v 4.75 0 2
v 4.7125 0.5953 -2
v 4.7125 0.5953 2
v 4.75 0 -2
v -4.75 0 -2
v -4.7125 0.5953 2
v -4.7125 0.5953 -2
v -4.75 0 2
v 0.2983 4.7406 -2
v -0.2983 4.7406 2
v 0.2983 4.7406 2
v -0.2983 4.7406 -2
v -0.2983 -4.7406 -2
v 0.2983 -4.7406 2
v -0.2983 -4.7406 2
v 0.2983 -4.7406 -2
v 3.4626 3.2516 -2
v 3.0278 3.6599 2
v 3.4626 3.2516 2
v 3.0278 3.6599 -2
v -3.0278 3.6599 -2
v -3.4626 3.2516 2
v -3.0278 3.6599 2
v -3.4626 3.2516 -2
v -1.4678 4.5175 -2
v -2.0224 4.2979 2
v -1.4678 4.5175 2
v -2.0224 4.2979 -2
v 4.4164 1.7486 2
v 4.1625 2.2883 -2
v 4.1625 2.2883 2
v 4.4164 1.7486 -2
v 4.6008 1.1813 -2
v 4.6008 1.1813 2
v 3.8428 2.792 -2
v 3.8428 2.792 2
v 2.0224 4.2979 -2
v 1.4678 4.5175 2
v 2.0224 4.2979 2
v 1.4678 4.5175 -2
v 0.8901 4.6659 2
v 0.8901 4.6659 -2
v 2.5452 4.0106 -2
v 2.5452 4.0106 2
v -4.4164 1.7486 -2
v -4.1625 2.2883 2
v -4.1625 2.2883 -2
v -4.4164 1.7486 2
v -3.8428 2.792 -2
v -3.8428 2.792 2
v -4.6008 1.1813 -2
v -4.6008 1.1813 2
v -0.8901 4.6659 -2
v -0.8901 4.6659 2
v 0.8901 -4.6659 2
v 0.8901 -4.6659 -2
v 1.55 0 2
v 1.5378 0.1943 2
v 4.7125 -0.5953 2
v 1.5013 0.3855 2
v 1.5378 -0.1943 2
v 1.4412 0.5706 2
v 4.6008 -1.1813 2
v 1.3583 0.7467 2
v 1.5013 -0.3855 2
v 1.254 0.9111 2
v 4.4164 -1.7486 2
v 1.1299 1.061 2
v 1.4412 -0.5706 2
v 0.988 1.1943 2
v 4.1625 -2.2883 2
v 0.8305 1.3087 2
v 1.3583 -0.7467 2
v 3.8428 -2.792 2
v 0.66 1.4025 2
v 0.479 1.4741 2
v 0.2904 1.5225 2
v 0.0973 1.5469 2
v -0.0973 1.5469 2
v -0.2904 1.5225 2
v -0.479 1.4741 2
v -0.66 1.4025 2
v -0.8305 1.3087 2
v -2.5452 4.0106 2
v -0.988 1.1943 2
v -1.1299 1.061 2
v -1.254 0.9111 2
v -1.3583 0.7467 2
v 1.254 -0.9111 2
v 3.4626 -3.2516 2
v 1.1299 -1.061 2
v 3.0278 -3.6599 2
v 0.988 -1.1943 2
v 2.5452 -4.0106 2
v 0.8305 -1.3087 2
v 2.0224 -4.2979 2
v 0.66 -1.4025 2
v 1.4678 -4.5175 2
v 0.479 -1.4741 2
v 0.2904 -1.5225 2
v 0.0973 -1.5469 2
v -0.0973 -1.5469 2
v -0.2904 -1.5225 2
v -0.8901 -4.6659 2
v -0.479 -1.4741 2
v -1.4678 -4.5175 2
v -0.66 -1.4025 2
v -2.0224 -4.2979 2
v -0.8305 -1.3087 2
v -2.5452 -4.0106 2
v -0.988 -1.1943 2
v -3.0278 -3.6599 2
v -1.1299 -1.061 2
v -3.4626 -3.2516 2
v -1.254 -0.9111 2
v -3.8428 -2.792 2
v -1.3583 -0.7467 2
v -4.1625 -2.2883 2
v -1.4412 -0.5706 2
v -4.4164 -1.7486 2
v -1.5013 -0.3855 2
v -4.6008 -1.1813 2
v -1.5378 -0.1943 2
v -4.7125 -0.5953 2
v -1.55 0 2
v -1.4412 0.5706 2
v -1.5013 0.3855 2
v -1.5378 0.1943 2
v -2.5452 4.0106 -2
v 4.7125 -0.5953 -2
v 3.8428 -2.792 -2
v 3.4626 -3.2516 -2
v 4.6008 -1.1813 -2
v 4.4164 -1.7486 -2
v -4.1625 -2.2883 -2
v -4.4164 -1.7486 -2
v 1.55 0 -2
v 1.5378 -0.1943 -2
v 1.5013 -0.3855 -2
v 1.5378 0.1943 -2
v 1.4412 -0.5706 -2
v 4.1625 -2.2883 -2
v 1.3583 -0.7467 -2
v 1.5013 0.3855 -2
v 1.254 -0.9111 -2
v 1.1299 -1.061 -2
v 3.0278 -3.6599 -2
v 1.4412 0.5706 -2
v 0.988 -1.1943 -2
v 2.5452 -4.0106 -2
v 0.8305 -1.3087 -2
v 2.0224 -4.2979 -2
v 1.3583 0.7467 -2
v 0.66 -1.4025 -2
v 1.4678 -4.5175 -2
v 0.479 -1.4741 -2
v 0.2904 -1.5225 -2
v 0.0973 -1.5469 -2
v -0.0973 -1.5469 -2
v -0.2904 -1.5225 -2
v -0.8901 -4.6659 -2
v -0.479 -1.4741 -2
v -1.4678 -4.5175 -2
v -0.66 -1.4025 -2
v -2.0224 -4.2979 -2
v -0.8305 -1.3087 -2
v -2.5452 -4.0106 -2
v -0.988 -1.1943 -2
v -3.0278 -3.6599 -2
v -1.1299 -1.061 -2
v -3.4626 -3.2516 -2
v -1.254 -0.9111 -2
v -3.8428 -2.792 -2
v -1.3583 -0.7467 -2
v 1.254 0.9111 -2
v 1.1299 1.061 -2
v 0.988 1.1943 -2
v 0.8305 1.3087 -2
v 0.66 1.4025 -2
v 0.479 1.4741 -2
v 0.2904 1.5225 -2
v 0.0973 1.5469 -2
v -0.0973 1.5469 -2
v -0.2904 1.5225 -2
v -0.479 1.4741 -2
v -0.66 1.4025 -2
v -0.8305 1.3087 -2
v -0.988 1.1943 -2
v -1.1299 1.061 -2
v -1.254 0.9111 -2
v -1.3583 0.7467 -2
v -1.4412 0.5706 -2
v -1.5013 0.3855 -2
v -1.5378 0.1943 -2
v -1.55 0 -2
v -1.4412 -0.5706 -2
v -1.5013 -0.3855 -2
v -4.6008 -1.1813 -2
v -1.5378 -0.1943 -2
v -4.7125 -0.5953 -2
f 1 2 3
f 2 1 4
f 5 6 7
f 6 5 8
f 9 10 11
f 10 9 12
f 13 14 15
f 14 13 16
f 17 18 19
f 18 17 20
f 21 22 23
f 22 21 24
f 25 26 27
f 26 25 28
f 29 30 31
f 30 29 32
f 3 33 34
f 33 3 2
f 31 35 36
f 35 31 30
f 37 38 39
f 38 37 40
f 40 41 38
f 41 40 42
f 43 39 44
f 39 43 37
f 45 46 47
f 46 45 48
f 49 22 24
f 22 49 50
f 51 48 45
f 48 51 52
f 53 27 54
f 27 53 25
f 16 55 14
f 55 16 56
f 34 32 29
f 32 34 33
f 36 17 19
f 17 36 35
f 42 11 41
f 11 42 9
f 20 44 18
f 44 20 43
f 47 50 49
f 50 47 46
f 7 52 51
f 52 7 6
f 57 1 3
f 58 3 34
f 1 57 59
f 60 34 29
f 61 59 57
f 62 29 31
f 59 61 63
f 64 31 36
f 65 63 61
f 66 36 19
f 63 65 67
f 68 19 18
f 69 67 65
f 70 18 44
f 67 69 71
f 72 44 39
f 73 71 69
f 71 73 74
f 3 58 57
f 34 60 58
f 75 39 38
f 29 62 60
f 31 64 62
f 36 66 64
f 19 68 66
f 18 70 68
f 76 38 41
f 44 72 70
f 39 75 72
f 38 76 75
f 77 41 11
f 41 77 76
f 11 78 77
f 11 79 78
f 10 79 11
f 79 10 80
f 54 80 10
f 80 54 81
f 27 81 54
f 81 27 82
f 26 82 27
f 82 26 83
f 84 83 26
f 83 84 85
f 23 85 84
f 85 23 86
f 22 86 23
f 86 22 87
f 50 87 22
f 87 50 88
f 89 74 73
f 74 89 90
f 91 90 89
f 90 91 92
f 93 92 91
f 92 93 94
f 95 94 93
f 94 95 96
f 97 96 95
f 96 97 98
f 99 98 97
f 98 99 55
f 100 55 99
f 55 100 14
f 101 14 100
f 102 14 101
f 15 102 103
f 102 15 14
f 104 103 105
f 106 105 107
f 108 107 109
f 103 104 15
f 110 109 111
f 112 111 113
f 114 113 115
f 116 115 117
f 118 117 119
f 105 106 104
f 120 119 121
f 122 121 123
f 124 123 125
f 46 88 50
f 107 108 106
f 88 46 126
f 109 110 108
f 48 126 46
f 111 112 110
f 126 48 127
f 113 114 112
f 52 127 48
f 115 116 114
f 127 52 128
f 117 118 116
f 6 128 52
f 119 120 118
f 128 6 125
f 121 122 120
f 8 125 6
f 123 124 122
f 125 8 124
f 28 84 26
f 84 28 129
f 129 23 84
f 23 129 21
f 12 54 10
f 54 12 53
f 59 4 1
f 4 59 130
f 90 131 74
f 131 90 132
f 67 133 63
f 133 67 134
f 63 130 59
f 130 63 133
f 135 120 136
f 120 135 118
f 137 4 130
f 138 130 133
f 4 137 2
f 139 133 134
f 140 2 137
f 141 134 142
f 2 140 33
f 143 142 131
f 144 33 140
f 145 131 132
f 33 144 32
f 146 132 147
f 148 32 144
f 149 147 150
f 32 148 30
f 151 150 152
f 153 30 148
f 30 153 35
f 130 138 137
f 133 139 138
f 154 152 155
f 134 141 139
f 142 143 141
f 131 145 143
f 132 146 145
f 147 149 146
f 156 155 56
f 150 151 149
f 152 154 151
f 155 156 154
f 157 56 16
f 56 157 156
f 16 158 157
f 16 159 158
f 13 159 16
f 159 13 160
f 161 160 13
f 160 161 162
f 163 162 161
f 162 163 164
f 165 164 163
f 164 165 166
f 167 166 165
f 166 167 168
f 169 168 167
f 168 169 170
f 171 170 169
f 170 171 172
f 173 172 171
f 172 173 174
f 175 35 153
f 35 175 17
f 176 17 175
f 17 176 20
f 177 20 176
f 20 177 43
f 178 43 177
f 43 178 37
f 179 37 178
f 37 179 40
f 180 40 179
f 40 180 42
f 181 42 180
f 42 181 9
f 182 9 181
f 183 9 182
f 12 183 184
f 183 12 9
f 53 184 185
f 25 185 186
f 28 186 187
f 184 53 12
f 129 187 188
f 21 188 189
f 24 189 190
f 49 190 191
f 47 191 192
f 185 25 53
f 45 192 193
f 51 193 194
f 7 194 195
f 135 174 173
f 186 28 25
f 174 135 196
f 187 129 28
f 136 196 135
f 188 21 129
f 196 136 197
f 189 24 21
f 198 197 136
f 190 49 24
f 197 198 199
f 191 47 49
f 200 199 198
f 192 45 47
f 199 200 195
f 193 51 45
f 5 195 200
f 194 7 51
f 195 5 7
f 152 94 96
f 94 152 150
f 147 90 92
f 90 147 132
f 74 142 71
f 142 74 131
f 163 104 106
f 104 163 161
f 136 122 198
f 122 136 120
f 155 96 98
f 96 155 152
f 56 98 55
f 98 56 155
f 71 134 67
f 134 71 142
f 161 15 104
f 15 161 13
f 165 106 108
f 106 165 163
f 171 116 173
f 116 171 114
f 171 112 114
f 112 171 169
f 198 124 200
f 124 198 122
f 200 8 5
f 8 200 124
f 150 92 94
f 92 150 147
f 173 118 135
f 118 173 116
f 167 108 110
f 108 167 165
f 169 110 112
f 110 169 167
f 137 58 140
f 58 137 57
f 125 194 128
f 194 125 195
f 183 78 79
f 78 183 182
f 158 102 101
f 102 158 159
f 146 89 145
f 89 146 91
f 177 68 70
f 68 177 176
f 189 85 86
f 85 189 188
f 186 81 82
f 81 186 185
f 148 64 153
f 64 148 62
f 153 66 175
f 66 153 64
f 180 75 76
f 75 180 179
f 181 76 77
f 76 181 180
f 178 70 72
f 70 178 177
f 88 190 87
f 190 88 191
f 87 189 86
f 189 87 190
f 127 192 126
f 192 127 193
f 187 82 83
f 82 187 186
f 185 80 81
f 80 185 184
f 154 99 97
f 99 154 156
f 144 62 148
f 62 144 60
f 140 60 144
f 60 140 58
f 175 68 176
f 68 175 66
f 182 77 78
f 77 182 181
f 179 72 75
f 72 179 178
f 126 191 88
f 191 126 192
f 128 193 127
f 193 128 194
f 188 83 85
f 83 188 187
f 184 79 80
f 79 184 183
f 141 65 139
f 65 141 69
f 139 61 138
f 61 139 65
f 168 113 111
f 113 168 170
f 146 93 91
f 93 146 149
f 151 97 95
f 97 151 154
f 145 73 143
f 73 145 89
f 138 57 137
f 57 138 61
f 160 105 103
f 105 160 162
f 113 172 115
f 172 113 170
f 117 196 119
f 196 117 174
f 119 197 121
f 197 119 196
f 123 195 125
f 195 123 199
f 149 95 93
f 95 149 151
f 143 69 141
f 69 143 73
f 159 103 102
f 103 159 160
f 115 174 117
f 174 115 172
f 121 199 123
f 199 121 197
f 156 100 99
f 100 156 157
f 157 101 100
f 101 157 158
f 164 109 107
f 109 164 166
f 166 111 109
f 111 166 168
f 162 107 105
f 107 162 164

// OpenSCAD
$fn = 50;


difference() {
	union() {
		translate(v = [0, 0, -2.0000000000]) {
			cylinder(h = 4, r = 4.7500000000);
		}
	}
	union() {
		translate(v = [0, 0, -100.0000000000]) {
			cylinder(h = 200, r = 1.5500000000);
		}
	}
}
